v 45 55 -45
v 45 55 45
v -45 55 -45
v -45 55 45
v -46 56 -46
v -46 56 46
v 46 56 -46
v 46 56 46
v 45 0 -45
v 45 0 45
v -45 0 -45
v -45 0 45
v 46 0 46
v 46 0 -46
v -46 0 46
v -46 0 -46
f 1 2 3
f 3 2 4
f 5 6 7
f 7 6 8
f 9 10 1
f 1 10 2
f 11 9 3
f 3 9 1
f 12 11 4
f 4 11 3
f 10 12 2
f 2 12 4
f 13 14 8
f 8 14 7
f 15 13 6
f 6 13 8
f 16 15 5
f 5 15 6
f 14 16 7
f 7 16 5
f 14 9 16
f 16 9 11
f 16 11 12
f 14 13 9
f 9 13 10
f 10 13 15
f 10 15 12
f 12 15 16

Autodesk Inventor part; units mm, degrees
ref_plane "YZ Plane" through (0, 0, 0) normal (1, 0, 0) x (0, 1, 0)
ref_plane "XZ Plane" through (0, 0, 0) normal (0, 1, 0) x (-1, 0, 0)
ref_plane "XY Plane" through (0, 0, 0) normal (0, 0, 1) x (1, 0, 0)
sketch "Sketch1" plane through (0, 0, 0) normal (0, 1, 0) x (-1, 0, 0)
  line L0 (45, -45) -> (-45, -45)
  line L1 (-45, -45) -> (-45, 45)
  line L2 (-45, 45) -> (45, 45)
  line L3 (45, 45) -> (45, -45)
  line L4 (45, -45) -> (-45, 45) construction
  line L5 (-45, -45) -> (45, 45) construction
  line L6 (-46, -46) -> (46, -46)
  line L7 (46, -46) -> (46, 46)
  line L8 (46, 46) -> (-46, 46)
  line L9 (-46, 46) -> (-46, -46)
  line L10 (-46, -46) -> (46, 46) construction
  line L11 (46, -46) -> (-46, 46) construction
  point P0 (0, 0)
  dimension "d0" = 90
  dimension "d1" = 90
  dimension "d4" = 92
  dimension "d5" = 92
extrude "Extrusion1" add sketch "Sketch1" along normal blind 55
sketch "Sketch2" plane through (0, 55, 0) normal (0, 1, 0) x (1, 0, 0)
  line L0 (-46, 46) -> (-46, -46) projected
  line L1 (46, 46) -> (-46, 46)
  line L2 (-46, 46) -> (-46, -46)
  line L3 (-46, -46) -> (46, -46)
  line L4 (46, -46) -> (46, 46)
  line L5 (46, 46) -> (-46, -46) construction
  line L6 (-46, 46) -> (46, -46) construction
  point P0 (0, 0)
extrude "Extrusion2" add sketch "Sketch2" along normal blind 1
properties part number "Aluminium block mold"
